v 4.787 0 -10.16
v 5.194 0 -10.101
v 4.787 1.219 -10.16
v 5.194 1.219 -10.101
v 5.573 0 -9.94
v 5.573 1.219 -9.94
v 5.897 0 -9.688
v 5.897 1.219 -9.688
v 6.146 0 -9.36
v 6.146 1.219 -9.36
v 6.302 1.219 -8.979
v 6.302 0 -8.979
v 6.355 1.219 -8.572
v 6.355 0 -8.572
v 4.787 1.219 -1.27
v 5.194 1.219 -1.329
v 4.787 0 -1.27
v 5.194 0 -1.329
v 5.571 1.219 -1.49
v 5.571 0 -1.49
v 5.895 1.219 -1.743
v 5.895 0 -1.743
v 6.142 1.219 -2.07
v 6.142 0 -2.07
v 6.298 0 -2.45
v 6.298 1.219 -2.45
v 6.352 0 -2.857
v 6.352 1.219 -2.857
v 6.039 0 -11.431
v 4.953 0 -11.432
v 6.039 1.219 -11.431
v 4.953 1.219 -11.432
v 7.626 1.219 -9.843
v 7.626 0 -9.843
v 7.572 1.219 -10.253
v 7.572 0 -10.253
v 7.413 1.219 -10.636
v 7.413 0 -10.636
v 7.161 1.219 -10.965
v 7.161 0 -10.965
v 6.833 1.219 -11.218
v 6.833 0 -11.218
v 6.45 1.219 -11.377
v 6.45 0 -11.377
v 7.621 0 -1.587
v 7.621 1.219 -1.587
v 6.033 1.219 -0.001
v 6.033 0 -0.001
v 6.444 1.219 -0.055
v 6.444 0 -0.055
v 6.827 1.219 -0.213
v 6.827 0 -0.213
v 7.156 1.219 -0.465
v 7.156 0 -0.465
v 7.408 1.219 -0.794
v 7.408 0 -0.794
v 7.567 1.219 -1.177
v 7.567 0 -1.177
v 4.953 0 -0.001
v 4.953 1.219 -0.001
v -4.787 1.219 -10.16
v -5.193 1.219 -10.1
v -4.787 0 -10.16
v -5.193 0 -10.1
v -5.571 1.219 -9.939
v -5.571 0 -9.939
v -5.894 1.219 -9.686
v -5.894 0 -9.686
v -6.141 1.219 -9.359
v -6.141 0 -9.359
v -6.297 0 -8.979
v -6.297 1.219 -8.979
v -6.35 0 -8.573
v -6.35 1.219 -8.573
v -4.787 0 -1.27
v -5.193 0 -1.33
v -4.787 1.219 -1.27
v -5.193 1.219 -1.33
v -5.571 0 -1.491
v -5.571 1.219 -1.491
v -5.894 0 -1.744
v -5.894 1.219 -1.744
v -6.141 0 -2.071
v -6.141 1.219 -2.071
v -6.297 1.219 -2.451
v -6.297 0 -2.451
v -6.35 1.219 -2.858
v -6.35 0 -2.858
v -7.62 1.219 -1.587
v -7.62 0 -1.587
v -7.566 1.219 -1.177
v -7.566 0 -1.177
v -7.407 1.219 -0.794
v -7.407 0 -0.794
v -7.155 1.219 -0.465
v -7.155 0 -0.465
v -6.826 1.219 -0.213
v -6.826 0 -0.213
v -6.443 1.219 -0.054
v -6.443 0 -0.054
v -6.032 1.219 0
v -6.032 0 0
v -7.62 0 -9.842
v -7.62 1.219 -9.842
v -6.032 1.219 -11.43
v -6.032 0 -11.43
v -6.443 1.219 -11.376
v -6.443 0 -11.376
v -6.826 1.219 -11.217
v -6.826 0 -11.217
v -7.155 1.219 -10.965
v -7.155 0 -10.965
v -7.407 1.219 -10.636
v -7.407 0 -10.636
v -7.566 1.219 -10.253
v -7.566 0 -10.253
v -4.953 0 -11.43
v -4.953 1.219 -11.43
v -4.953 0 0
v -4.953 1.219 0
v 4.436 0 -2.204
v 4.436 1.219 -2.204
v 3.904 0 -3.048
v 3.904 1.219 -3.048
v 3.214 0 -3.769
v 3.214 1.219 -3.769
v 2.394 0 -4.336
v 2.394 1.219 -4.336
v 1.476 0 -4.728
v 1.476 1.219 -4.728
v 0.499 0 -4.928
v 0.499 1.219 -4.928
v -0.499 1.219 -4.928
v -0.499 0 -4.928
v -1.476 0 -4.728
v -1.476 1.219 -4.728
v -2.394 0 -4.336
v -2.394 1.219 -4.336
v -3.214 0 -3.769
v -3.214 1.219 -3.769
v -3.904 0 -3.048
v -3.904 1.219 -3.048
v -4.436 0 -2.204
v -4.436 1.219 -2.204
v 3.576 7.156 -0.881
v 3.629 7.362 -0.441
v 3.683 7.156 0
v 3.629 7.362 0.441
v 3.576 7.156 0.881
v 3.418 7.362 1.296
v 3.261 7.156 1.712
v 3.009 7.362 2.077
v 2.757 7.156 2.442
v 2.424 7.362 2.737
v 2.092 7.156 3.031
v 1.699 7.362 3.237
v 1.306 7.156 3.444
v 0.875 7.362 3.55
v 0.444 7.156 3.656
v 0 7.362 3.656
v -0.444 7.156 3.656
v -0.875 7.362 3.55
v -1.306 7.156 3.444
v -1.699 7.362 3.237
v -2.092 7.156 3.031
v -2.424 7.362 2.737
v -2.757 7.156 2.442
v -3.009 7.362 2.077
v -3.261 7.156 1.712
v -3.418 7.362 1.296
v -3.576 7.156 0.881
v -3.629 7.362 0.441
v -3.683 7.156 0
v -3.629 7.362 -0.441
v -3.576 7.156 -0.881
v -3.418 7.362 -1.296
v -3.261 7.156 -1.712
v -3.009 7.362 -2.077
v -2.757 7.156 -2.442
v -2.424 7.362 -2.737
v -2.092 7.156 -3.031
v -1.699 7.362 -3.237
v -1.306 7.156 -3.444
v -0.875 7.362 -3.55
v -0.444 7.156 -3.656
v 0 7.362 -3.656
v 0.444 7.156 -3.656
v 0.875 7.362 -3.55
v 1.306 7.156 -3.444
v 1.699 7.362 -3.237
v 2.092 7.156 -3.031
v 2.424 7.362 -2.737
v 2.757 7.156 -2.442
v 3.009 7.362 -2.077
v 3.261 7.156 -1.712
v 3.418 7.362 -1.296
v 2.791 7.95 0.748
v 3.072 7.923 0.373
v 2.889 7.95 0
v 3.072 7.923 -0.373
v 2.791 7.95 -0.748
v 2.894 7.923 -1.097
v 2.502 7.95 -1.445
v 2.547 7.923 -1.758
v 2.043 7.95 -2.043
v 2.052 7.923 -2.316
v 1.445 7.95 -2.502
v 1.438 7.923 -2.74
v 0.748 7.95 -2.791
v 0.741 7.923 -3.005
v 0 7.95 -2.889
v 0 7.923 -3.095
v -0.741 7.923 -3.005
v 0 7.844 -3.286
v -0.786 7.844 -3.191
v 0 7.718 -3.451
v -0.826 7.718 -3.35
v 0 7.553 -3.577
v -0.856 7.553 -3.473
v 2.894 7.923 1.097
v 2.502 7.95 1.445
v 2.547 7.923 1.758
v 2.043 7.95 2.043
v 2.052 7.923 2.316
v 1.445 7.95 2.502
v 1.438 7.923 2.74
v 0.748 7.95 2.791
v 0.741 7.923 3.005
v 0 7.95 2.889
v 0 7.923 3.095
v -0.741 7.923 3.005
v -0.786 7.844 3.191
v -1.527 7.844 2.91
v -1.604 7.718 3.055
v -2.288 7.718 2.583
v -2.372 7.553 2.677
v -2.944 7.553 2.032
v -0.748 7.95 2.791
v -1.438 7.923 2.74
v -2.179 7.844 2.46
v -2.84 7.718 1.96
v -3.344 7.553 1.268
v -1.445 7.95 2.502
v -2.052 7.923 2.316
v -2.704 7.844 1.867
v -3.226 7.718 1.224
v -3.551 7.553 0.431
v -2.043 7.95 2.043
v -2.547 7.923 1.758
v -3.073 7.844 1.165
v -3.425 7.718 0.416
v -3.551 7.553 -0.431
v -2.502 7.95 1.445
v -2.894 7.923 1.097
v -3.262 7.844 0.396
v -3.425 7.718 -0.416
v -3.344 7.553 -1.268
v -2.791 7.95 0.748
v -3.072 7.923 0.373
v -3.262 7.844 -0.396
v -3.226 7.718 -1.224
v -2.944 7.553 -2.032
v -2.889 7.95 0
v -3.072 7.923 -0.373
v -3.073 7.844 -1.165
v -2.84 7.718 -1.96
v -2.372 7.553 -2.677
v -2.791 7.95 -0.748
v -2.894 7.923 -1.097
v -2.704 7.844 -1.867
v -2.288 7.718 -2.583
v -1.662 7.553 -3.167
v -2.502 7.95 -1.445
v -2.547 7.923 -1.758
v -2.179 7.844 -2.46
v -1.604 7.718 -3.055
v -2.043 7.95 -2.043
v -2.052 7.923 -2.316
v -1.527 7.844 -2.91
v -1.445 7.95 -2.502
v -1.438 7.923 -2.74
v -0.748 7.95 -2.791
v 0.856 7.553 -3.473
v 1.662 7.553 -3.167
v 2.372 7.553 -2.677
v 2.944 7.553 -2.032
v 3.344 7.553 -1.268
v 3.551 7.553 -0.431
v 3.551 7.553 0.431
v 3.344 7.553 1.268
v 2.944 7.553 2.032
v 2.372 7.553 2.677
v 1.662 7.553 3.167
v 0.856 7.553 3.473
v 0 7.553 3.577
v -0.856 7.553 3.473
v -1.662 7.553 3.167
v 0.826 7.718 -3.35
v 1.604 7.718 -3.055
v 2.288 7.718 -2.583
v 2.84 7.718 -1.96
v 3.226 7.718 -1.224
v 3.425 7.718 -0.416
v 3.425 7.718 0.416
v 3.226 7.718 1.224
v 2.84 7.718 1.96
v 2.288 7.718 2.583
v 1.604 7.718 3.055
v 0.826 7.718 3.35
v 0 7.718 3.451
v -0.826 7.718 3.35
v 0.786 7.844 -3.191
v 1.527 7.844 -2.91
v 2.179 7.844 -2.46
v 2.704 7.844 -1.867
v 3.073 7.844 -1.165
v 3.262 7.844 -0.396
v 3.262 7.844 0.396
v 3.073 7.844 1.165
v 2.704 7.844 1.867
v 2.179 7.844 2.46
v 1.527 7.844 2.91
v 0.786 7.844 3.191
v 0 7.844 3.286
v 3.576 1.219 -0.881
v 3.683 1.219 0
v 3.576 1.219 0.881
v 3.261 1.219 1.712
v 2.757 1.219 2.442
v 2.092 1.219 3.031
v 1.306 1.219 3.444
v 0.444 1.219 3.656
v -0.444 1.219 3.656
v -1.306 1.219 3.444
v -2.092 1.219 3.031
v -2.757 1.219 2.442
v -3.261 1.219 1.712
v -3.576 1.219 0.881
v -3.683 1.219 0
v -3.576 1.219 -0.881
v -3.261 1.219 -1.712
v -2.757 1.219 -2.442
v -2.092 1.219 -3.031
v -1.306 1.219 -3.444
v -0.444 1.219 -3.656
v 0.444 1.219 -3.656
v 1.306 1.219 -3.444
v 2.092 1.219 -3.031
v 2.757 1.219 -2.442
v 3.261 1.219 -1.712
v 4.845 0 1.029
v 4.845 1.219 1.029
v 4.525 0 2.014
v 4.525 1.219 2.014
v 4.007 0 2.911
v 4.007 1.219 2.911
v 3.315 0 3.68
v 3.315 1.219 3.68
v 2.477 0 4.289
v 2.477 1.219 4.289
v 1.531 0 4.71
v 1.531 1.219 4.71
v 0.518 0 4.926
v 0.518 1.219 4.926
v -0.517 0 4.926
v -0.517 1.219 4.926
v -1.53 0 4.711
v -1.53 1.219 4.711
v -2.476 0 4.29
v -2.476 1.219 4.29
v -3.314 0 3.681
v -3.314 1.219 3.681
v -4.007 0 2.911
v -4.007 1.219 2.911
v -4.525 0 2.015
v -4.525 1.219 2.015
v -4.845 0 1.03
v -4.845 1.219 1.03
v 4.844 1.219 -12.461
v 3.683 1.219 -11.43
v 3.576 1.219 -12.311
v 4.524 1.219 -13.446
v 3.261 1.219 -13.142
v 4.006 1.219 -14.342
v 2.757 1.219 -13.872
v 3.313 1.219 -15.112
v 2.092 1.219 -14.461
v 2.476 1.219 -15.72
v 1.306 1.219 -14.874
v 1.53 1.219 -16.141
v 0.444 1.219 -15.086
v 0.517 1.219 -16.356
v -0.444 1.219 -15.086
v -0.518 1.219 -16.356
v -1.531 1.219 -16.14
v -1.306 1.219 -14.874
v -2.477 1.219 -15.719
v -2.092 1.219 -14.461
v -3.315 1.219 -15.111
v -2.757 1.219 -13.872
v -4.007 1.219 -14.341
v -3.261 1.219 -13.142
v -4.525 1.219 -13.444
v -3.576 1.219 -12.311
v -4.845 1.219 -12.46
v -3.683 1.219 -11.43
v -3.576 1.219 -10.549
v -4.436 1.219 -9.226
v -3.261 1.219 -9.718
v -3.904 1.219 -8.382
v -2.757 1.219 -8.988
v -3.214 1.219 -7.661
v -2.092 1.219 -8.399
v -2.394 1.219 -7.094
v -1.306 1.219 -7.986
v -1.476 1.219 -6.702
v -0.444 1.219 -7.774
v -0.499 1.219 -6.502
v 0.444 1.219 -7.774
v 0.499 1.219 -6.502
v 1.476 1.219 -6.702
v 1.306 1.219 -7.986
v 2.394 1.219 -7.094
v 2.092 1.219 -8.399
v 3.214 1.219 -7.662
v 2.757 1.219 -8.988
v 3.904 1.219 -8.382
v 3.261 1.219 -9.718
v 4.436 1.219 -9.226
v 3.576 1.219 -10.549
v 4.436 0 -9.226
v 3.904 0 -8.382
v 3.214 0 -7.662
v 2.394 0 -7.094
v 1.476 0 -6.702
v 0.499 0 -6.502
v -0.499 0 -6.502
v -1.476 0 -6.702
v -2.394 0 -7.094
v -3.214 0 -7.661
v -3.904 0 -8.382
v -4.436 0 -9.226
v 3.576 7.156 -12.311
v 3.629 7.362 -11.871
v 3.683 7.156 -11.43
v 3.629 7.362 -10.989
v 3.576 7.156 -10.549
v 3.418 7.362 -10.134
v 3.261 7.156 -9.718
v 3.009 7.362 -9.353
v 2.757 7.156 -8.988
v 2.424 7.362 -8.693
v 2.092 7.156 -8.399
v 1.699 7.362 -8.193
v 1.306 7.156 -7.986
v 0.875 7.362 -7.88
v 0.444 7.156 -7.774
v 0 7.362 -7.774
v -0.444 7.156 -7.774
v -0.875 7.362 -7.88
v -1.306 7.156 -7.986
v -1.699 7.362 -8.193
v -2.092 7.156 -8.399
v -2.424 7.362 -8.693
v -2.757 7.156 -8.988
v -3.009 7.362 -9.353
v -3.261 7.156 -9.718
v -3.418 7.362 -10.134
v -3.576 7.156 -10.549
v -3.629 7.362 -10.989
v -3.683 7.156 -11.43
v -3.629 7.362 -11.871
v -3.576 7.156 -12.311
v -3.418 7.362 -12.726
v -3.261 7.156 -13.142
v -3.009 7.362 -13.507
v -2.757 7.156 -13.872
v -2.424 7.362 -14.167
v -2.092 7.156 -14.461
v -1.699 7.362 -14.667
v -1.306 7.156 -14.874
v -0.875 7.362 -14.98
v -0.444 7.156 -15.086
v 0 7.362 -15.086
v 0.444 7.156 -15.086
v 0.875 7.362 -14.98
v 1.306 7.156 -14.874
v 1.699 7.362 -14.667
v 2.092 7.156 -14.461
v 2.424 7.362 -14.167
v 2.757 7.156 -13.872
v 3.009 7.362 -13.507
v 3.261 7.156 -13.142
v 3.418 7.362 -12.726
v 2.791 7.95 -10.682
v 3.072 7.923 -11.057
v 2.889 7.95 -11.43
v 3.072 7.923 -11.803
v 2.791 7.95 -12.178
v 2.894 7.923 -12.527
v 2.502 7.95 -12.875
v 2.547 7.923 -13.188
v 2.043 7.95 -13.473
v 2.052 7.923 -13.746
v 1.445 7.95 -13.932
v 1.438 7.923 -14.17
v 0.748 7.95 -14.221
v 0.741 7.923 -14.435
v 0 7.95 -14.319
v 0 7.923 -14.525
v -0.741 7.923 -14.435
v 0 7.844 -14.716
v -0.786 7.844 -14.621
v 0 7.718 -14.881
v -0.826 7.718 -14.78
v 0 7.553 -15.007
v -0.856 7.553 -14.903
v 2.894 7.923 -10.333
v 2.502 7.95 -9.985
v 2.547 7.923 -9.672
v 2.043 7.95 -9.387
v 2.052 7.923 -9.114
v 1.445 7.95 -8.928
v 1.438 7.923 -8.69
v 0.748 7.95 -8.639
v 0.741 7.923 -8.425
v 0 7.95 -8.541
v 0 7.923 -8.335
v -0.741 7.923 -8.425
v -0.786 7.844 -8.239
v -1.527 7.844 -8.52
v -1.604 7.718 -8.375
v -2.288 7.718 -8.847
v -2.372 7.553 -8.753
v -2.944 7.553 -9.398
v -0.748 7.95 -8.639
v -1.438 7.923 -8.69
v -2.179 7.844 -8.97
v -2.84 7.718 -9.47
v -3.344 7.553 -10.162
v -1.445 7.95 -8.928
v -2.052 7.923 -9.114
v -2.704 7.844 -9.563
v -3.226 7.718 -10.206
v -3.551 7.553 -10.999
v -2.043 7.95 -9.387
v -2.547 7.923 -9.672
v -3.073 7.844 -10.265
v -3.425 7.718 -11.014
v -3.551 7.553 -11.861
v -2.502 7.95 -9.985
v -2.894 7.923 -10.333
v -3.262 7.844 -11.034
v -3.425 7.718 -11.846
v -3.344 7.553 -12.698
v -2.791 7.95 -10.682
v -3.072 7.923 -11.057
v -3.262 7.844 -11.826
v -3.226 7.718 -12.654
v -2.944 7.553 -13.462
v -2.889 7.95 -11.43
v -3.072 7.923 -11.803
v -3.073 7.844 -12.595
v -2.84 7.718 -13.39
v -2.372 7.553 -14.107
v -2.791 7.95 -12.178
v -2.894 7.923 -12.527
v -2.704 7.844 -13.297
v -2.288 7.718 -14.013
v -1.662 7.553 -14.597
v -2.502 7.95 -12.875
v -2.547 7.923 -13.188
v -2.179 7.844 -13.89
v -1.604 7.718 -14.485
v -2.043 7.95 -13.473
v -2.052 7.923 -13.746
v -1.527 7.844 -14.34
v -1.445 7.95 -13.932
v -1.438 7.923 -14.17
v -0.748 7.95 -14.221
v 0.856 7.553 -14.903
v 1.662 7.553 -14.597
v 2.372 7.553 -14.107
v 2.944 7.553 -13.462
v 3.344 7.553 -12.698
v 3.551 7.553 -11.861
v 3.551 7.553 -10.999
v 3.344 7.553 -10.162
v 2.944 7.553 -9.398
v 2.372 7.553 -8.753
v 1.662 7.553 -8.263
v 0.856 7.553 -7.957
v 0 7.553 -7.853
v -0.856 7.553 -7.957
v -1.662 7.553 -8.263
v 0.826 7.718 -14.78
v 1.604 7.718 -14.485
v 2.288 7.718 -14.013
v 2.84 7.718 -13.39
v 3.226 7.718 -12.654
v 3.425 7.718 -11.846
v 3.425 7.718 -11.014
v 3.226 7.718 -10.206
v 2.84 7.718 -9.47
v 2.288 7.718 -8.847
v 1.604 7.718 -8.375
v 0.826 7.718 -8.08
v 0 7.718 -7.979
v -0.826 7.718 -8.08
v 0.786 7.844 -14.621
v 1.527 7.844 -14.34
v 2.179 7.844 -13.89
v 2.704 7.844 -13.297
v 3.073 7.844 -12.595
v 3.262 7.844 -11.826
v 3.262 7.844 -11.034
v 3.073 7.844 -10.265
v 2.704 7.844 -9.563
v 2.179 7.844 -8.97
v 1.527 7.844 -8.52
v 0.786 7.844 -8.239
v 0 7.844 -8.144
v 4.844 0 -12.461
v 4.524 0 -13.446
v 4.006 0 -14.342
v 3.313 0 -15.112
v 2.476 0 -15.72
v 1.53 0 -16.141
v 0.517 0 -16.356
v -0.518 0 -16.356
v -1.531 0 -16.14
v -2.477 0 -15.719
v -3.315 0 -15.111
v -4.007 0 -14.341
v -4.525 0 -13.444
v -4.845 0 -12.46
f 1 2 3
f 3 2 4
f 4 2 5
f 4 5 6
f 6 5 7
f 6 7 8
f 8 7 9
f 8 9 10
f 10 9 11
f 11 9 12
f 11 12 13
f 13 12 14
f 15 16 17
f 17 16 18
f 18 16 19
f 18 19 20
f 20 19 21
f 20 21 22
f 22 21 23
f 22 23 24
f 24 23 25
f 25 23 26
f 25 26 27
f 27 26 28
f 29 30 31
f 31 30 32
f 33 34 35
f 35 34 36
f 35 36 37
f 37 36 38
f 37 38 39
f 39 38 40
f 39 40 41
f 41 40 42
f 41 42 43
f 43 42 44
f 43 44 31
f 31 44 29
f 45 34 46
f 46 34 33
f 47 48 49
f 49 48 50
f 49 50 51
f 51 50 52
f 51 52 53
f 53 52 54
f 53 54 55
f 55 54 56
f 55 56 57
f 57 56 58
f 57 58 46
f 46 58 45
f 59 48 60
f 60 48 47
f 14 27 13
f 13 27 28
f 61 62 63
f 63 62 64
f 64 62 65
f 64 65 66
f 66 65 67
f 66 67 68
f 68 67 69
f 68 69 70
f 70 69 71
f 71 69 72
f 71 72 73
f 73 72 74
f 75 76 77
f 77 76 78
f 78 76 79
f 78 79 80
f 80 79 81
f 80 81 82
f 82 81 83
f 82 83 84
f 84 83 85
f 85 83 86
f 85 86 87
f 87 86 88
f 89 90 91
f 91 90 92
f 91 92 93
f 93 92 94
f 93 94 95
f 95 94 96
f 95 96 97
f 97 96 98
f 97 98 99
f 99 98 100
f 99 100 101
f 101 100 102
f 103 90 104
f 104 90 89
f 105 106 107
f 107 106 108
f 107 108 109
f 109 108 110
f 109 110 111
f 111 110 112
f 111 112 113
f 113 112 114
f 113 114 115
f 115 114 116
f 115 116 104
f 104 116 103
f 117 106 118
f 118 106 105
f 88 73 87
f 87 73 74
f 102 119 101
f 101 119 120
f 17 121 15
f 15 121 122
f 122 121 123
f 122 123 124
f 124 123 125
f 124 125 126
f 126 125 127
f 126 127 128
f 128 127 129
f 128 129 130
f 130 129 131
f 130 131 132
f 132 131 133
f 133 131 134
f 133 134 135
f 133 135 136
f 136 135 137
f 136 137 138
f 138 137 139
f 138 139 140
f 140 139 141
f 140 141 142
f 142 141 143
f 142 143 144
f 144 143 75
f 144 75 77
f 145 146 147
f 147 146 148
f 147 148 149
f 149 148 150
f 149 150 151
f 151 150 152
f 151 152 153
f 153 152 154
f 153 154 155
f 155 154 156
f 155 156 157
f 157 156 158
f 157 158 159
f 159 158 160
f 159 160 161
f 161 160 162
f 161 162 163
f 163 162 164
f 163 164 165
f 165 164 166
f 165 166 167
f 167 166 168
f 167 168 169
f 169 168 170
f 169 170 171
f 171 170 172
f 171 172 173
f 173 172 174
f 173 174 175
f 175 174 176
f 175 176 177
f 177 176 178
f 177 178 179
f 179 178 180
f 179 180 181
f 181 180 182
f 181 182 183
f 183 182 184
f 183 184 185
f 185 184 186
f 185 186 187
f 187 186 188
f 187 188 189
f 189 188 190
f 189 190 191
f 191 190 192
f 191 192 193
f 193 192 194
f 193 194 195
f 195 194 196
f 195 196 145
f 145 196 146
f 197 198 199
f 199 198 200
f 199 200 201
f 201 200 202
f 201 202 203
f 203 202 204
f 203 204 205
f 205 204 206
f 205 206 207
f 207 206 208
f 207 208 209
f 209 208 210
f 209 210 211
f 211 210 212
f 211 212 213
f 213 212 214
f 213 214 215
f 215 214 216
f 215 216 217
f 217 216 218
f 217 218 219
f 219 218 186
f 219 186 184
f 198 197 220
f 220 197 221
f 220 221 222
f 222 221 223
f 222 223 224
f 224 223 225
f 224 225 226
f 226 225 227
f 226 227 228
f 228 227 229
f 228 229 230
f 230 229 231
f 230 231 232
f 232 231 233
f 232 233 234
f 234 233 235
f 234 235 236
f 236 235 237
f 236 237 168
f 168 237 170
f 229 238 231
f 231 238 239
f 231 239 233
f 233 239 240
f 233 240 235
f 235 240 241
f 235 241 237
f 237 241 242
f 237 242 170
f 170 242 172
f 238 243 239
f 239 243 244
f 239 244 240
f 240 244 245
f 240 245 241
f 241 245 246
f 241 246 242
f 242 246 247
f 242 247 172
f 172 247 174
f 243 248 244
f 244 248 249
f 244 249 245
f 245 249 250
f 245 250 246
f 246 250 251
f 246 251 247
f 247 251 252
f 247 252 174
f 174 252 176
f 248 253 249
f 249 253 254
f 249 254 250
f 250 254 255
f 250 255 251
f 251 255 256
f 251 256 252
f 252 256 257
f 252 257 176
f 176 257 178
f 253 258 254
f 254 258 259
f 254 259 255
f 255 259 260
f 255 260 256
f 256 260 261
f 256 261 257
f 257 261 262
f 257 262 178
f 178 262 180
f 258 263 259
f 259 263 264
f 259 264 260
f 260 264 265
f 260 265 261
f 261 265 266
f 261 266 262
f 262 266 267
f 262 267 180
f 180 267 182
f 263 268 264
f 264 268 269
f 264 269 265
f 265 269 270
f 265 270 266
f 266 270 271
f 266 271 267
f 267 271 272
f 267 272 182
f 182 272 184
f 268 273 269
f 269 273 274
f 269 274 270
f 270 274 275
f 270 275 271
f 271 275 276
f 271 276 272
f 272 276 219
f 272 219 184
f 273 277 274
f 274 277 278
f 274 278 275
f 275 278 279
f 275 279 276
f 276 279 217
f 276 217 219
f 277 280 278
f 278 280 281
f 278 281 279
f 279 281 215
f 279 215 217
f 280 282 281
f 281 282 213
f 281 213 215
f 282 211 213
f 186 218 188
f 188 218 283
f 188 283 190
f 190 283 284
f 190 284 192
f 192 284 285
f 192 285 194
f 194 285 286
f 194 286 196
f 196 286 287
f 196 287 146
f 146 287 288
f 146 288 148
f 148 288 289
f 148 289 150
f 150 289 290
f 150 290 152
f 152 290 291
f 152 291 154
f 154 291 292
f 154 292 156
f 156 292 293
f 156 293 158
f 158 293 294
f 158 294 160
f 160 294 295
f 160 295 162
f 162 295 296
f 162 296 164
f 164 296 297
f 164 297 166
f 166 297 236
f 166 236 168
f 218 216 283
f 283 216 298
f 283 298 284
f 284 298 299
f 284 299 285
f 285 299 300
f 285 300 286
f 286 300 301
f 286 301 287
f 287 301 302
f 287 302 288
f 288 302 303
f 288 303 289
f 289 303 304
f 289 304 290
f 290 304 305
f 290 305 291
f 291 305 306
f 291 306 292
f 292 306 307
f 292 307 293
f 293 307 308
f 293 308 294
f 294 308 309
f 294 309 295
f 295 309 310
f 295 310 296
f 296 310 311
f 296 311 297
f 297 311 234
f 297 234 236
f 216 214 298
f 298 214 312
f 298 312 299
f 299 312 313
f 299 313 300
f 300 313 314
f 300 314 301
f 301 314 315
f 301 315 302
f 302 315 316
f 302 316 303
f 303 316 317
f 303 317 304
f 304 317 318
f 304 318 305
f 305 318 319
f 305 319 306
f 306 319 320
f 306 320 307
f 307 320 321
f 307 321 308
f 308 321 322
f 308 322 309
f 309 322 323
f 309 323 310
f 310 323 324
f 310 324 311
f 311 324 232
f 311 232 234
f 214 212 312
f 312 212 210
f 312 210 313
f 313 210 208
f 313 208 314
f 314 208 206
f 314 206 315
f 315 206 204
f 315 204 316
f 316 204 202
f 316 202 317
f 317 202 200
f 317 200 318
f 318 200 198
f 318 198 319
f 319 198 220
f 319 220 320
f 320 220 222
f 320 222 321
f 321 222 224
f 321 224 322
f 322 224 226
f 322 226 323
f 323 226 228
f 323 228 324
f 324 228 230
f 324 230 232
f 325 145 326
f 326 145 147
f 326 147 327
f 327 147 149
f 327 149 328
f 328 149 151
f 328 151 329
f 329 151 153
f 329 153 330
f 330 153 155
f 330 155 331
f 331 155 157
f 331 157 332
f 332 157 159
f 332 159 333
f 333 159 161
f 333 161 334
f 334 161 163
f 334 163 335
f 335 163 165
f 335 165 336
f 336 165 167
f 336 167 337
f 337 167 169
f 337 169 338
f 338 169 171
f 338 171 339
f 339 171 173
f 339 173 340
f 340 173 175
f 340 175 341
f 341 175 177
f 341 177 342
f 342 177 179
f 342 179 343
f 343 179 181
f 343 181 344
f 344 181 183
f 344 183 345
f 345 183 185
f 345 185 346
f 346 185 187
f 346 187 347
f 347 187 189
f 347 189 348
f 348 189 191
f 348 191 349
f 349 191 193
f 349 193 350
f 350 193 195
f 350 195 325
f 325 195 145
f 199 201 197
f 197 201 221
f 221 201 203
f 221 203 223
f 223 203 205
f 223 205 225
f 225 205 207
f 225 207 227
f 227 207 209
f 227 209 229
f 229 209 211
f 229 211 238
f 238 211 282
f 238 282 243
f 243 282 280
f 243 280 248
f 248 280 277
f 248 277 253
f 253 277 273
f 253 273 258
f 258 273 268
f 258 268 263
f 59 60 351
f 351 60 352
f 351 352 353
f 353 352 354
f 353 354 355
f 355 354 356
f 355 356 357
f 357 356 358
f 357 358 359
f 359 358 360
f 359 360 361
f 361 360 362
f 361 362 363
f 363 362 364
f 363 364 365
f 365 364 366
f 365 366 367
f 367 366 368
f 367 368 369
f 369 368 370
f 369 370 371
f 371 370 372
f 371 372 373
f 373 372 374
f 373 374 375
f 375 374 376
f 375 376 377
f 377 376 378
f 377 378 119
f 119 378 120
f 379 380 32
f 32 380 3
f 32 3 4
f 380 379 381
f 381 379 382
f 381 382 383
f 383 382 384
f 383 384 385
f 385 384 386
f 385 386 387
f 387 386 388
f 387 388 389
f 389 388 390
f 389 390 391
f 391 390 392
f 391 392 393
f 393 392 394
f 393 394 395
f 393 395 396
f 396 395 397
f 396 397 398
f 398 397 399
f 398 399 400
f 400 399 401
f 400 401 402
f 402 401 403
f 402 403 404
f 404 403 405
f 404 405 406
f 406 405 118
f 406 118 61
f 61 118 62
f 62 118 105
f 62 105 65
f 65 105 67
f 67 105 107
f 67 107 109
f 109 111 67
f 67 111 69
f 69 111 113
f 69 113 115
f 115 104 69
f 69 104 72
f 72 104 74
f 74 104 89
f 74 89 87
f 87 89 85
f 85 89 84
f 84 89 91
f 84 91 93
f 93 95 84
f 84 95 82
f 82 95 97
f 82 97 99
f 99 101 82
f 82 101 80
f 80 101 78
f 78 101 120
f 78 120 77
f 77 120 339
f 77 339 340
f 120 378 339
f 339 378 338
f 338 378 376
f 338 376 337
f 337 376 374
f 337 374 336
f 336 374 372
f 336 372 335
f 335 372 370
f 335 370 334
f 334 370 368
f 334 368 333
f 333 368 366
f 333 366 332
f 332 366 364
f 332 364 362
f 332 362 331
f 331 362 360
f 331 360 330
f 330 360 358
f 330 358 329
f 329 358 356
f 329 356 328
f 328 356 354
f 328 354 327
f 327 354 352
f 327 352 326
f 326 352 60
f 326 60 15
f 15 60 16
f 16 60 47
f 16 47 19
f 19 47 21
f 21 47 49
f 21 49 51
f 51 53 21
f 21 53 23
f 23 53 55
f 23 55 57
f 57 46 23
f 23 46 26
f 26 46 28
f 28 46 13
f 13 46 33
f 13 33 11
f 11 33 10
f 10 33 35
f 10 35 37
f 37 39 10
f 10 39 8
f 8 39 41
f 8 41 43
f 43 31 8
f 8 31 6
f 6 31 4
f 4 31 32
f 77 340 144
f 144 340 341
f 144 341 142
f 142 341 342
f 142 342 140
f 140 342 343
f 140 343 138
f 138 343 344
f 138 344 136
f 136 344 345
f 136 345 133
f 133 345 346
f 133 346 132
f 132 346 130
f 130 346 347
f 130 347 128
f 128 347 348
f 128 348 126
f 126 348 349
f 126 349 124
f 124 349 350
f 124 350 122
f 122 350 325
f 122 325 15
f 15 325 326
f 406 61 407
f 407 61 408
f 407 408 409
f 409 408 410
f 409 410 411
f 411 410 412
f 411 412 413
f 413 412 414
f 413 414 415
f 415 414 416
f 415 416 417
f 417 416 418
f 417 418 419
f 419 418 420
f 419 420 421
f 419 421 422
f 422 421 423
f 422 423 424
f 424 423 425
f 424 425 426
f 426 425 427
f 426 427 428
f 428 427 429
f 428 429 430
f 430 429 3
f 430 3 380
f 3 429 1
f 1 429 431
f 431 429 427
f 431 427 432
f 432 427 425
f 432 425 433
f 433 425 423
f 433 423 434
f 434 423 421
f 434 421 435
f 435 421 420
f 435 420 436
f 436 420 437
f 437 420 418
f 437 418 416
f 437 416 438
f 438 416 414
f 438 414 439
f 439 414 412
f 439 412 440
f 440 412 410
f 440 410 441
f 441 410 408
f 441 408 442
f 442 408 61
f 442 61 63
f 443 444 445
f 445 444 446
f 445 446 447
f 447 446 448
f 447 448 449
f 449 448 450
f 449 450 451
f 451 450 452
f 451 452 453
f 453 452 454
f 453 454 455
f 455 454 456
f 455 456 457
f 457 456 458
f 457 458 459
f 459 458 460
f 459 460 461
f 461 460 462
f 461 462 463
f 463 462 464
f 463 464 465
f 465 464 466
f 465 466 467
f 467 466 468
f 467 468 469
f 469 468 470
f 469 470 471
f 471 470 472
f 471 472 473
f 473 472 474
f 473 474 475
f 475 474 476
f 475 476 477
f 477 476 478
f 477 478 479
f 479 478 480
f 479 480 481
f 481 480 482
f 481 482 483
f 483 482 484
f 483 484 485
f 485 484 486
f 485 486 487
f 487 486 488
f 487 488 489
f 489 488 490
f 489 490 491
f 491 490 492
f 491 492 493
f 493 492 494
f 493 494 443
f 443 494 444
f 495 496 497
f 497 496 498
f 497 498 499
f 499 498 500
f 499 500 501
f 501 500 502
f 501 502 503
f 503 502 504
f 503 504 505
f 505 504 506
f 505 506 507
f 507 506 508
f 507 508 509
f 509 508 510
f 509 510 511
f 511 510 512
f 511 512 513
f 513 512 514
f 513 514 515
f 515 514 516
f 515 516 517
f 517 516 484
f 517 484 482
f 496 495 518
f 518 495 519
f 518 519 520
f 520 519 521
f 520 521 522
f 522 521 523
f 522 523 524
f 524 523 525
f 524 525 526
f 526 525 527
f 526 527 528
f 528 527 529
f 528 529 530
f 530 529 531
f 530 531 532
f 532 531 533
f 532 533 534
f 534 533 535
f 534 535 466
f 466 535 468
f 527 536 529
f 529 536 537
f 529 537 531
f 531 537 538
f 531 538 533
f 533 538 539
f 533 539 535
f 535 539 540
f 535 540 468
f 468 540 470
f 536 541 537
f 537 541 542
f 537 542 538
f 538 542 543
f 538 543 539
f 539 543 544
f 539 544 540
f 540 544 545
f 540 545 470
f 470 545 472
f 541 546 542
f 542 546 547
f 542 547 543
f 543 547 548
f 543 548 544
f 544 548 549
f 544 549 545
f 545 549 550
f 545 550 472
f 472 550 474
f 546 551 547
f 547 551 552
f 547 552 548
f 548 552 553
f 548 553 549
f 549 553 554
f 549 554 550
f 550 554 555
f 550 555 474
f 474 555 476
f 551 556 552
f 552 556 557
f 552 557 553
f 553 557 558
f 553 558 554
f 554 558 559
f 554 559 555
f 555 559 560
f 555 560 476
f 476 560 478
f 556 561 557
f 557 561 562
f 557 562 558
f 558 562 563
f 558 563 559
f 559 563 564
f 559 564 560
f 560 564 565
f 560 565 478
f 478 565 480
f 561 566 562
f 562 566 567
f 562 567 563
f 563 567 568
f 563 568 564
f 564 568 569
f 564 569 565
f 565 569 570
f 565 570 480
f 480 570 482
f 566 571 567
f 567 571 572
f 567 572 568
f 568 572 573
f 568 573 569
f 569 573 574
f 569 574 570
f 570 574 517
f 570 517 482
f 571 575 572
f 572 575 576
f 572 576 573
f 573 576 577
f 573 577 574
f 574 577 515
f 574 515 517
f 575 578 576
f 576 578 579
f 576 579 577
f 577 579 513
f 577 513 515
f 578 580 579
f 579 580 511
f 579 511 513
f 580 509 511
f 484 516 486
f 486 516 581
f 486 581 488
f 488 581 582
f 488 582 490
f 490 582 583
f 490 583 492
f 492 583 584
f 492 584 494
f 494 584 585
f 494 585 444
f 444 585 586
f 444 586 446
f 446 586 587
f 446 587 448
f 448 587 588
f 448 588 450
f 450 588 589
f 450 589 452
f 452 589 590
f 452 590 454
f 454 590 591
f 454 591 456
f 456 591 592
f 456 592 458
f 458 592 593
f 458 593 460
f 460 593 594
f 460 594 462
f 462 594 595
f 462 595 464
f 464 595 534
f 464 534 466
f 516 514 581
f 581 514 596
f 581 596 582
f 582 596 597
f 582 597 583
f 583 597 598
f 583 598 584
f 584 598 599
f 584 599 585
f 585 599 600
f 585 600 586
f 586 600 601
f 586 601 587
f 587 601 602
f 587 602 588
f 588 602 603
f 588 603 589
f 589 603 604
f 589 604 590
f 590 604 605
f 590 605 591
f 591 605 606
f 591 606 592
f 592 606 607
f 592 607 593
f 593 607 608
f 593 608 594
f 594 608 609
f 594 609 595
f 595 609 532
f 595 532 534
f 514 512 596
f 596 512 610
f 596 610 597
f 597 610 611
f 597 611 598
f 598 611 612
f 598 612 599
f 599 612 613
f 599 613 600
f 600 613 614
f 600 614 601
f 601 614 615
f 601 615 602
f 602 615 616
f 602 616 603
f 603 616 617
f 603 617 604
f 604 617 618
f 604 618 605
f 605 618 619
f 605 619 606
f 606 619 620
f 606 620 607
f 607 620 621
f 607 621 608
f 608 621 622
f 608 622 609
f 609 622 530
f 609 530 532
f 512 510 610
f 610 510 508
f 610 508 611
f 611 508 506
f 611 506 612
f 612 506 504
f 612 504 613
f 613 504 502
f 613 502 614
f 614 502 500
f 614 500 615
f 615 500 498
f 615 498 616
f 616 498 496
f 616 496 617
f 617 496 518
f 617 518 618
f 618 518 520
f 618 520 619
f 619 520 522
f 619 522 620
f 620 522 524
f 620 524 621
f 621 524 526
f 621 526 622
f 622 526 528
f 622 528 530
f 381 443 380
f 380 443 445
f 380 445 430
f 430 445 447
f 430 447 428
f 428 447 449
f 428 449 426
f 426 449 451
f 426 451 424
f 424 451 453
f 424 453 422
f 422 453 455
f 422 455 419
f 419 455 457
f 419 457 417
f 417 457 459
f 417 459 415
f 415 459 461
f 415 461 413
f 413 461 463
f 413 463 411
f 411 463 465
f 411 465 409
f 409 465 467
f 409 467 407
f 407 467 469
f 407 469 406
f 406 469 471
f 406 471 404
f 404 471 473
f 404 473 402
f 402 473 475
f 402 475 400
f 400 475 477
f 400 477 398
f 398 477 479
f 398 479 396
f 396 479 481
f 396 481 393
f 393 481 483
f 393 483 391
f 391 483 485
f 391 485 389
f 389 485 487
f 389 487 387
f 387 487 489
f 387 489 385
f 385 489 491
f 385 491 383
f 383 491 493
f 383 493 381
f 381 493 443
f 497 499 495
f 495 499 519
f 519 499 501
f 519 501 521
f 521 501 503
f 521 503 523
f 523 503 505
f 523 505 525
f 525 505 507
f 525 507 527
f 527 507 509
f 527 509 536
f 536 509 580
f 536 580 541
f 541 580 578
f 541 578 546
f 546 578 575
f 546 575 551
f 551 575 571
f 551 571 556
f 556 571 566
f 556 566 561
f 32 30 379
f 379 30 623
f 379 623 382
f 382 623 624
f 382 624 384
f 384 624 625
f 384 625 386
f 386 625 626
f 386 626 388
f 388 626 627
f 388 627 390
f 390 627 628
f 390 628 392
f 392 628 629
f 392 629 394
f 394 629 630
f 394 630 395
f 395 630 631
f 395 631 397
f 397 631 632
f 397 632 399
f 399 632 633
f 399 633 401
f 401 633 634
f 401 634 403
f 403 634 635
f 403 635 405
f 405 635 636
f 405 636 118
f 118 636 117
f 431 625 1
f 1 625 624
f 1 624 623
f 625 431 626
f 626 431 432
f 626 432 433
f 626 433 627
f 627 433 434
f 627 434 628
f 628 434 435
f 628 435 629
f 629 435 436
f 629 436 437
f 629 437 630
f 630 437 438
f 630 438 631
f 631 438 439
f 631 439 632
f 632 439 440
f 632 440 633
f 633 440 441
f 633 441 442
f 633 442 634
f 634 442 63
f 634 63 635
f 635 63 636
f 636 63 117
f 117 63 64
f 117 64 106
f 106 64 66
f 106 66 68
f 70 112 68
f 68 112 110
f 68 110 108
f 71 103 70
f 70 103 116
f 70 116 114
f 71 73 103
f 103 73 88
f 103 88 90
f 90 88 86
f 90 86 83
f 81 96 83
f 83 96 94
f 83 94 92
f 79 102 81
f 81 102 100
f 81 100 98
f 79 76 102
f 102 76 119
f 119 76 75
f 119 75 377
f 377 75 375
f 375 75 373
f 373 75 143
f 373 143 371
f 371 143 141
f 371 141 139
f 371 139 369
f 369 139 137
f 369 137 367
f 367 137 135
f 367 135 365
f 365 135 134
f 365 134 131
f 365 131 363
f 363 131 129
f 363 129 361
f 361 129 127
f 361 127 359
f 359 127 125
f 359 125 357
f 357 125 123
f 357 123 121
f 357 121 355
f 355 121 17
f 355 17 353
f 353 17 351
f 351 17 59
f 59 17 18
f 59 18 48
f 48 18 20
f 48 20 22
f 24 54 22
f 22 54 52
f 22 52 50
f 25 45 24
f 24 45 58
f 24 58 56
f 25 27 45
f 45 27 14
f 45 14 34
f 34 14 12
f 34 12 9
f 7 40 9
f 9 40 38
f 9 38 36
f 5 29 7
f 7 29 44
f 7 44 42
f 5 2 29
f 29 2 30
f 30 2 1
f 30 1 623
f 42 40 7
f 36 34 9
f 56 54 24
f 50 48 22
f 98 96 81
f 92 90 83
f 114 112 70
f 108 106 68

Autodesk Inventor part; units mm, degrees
ref_plane "YZ Plane" through (0, 0, 0) normal (1, 0, 0) x (0, 1, 0)
ref_plane "XZ Plane" through (0, 0, 0) normal (0, 1, 0) x (-1, 0, 0)
ref_plane "XY Plane" through (0, 0, 0) normal (0, 0, 1) x (1, 0, 0)
sketch "Sketch1" plane through (0, 0, 0) normal (0, 1, 0) x (-1, 0, 0)
  circle A0 centre (0, 0) radius 4.953
  circle A1 centre (0, -11.43) radius 4.953
  dimension "d0" = 9.906
  dimension "d1" = 9.906
  dimension "d2" = 11.43
extrude "Extrusion1" add sketch "Sketch1" along normal blind 1.2192
sketch "Sketch2" plane through (0, 1.2192, 0) normal (0, 1, 0) x (1, 0, 0)
  circle A0 centre (0, 0) radius 3.683
  circle A1 centre (0, 11.43) radius 3.683
  dimension "d5" = 7.366
  dimension "d6" = 7.366
  dimension "d7" = 11.43
extrude "Extrusion2" add sketch "Sketch2" along normal blind 6.731
fillet "Fillet1" radius 0.7937 2 edges at (-3.683, 7.9502, -11.43) (-3.683, 7.9502, 0)
sketch "Sketch3" plane through (0, 0, 0) normal (0, -1, 0) x (1, 0, 0)
  circle A0 centre (0, 0) radius 2.8892 projected
  line L0 (-4.953, 0) -> (-6.0325, 0)
  line L1 (-7.62, -1.5875) -> (-7.62, -9.8425)
  line L2 (-4.953, -11.43) -> (-6.0325, -11.43)
  circle A1 centre (0, -11.43) radius 4.953 projected
  line L3 (4.953, -11.4315) -> (6.039, -11.4309)
  line L4 (7.6256, -9.8425) -> (7.6209, -1.5873)
  line L5 (6.0334, -0.0007) -> (4.953, -0.0007)
  line L6 (-6.35, -8.5725) -> (-6.35, -2.8575)
  line L7 (-4.7625, -1.27) -> (-4.7874, -1.27)
  line L8 (-4.7874, -10.16) -> (-4.7625, -10.16)
  circle A2 centre (0, 0) radius 4.953 projected
  line L9 (4.7874, -1.27) -> (4.7641, -1.27)
  line L10 (6.3516, -2.8566) -> (6.3548, -8.5716)
  line L11 (4.7682, -10.16) -> (4.7874, -10.16)
  arc A3 (6.039, -11.4309) -> (7.6256, -9.8425) centre (6.0381, -9.8434) ccw
  arc A4 (4.7682, -10.16) -> (6.3548, -8.5716) centre (4.7673, -8.5725) ccw
  arc A5 (7.6209, -1.5873) -> (6.0334, -0.0007) centre (6.0334, -1.5882) ccw
  arc A6 (6.3516, -2.8566) -> (4.7641, -1.27) centre (4.7641, -2.8575) ccw
  arc A7 (-6.0325, 0) -> (-7.62, -1.5875) centre (-6.0325, -1.5875) ccw
  arc A8 (-4.7625, -1.27) -> (-6.35, -2.8575) centre (-4.7625, -2.8575) ccw
  arc A9 (-6.35, -8.5725) -> (-4.7625, -10.16) centre (-4.7625, -8.5725) ccw
  arc A10 (-7.62, -9.8425) -> (-6.0325, -11.43) centre (-6.0325, -9.8425) ccw
  circle A11 centre (0, -11.43) radius 2.8892 projected
  point P0 (7.6265, -11.43)
  dimension "d12" = 1.27
  dimension "d14" = 1.5875
  dimension "d17" = 7.62
  dimension "d18" = 1.27
  dimension "d21" = 7.62
  dimension "d22" = 1.27
  dimension "d23" = 1.2716
extrude "Extrusion3" add sketch "Sketch3" against normal blind 1.2192 contours A2 A8 L6 A9 A1 L2 A10 L1 A7 L0 | L5 A5 L4 A3 L3 A1 A4 L10 A6 A2
properties part number "push_buttons"
